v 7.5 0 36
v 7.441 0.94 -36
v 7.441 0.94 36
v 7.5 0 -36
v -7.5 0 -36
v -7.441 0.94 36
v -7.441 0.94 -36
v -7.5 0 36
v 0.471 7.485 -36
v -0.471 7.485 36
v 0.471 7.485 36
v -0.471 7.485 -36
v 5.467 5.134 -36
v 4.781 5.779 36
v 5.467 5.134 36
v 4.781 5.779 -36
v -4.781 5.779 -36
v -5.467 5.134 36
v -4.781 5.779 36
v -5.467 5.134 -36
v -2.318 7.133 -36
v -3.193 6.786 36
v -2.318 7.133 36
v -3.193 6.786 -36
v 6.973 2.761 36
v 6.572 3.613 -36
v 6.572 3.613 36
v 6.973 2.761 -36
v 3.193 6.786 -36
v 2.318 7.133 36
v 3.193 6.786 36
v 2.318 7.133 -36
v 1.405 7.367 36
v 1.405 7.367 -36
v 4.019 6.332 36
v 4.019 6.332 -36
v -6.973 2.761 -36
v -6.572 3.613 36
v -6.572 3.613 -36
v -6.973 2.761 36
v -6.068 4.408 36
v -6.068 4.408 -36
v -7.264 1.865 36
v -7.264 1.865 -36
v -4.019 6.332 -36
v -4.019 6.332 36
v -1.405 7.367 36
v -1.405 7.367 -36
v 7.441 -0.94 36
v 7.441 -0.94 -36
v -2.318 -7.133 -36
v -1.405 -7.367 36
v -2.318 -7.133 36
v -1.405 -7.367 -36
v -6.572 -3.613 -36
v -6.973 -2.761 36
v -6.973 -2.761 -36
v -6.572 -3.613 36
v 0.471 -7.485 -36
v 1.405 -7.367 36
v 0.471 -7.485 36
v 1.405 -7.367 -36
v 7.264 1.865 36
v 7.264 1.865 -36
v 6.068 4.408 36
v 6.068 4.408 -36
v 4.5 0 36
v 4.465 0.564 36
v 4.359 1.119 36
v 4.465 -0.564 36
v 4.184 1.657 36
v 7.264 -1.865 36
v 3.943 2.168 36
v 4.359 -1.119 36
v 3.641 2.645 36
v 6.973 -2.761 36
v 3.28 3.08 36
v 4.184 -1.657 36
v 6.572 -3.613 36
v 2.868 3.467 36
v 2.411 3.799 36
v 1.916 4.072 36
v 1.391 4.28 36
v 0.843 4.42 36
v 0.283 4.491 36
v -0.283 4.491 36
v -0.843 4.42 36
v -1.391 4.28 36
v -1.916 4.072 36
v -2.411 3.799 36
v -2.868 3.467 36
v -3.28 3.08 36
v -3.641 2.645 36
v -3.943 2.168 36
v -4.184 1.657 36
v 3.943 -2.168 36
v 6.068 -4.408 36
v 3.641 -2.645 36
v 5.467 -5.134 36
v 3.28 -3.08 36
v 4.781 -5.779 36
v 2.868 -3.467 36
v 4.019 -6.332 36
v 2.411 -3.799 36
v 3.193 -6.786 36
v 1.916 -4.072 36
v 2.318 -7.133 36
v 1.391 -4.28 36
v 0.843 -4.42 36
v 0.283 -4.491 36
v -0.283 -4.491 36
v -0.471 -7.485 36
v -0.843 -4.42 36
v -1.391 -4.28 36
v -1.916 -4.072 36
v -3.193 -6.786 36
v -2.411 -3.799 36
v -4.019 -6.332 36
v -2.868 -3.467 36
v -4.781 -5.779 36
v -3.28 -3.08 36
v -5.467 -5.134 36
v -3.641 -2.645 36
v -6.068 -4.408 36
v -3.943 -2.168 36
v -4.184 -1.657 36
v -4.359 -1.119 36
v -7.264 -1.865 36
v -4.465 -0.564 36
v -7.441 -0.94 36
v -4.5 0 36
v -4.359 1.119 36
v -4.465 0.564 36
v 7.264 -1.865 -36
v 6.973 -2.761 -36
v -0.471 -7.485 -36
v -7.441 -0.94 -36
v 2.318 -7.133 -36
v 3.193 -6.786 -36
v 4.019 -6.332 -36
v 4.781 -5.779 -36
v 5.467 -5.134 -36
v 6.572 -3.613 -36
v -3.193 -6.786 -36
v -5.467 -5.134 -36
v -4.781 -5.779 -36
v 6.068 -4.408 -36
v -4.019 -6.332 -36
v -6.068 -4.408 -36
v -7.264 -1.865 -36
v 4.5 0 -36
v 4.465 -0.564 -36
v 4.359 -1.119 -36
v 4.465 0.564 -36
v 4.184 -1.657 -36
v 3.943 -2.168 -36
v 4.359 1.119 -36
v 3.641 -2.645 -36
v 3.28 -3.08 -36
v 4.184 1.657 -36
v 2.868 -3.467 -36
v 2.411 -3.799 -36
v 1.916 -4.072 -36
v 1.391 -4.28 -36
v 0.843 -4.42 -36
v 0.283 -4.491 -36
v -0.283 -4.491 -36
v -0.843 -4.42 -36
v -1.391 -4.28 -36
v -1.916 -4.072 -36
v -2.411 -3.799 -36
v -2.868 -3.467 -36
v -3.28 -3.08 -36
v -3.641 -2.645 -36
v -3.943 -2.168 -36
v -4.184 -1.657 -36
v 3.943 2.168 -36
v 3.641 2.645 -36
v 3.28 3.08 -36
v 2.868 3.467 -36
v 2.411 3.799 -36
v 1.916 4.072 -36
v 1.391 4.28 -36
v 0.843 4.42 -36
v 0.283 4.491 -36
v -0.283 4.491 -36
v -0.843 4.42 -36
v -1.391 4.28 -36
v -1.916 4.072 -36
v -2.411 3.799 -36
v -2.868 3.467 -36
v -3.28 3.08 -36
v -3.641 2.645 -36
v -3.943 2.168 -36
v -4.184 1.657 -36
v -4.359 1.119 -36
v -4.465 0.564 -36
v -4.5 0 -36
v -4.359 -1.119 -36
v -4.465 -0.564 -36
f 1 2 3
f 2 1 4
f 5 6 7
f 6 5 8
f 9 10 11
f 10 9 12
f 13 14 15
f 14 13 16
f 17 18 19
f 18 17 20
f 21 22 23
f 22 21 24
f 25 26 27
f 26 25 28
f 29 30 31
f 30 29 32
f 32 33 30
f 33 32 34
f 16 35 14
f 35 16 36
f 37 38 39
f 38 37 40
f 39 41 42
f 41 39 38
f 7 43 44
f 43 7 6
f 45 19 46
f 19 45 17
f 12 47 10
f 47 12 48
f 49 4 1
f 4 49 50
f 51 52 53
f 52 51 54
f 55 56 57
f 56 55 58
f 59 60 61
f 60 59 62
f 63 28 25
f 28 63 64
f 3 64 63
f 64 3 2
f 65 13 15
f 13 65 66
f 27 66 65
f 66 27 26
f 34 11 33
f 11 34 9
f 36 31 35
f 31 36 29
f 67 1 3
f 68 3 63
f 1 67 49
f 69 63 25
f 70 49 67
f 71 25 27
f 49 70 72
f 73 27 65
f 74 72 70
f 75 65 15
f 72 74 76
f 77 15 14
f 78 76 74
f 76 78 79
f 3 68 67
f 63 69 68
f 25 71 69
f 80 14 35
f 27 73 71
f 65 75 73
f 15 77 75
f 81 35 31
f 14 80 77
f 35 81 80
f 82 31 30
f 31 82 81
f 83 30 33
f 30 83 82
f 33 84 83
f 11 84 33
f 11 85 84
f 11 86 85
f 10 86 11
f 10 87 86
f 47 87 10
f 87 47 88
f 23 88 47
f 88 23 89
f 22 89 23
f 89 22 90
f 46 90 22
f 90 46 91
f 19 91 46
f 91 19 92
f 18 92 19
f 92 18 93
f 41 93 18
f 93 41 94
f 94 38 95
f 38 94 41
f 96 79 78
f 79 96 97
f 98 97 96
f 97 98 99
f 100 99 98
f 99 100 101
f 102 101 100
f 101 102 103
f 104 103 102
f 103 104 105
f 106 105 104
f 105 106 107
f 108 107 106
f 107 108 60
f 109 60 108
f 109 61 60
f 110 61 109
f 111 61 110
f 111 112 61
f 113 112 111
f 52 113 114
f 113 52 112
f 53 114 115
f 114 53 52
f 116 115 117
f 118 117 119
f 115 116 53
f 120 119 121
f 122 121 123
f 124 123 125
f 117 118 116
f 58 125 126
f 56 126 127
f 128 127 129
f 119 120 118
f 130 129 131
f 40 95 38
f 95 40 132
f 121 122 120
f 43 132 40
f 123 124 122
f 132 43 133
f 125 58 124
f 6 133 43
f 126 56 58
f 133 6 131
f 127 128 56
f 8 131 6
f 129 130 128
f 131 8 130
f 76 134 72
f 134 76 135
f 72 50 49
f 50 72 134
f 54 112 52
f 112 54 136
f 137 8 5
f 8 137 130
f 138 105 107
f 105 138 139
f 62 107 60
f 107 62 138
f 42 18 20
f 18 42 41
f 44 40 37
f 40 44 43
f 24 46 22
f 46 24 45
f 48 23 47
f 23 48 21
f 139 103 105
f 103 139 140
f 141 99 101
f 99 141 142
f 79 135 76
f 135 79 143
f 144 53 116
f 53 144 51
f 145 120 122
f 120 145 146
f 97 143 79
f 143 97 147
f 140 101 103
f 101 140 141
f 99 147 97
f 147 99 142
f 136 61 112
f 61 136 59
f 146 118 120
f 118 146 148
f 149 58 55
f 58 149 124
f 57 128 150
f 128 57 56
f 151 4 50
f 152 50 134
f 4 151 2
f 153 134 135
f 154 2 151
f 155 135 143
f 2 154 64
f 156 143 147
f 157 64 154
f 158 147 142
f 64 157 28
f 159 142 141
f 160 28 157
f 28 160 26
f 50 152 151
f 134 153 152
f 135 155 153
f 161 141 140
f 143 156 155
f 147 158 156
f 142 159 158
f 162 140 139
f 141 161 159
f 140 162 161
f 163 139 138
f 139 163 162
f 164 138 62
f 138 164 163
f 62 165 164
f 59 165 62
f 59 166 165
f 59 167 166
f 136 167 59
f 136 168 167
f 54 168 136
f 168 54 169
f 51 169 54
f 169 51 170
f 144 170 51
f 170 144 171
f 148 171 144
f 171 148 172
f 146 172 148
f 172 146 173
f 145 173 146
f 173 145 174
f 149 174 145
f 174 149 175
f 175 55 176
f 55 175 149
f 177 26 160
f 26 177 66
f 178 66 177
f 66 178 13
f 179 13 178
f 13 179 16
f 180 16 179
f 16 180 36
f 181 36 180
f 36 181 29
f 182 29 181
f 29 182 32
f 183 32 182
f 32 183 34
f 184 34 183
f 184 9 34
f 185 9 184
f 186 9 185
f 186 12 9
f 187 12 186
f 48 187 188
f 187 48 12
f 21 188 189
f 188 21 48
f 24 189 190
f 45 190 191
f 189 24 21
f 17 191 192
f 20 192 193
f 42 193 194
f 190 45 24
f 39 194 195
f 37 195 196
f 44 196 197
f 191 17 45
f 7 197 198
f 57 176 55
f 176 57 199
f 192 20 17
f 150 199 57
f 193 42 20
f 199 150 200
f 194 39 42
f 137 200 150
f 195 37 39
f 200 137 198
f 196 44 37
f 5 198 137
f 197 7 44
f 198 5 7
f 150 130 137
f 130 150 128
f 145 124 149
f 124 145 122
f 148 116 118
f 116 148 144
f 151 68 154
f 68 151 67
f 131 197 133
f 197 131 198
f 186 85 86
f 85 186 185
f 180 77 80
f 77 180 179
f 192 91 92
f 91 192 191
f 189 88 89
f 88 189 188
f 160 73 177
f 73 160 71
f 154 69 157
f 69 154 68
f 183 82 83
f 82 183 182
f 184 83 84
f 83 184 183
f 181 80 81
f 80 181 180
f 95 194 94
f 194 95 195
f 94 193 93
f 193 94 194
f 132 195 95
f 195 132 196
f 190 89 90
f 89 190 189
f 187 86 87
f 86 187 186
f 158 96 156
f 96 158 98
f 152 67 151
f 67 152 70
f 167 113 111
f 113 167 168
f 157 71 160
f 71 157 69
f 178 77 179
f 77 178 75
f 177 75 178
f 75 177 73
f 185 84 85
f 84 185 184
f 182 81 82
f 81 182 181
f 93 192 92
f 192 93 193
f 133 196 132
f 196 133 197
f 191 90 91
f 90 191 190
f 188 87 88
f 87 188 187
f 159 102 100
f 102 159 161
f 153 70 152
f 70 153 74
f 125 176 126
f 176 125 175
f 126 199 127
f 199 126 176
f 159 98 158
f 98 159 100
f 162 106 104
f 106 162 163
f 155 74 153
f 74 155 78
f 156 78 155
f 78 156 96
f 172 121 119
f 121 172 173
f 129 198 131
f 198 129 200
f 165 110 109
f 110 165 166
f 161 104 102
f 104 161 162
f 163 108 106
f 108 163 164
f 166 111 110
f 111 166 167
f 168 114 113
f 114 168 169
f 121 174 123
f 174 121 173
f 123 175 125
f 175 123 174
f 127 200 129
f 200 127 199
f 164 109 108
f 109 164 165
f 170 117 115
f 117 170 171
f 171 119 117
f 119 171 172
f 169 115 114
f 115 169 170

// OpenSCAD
$fn = 50;


difference() {
	union() {
		translate(v = [0, 0, -36.0000000000]) {
			cylinder(h = 72, r = 7.5000000000);
		}
	}
	union() {
		translate(v = [0, 0, -100.0000000000]) {
			cylinder(h = 200, r = 4.5000000000);
		}
	}
}
